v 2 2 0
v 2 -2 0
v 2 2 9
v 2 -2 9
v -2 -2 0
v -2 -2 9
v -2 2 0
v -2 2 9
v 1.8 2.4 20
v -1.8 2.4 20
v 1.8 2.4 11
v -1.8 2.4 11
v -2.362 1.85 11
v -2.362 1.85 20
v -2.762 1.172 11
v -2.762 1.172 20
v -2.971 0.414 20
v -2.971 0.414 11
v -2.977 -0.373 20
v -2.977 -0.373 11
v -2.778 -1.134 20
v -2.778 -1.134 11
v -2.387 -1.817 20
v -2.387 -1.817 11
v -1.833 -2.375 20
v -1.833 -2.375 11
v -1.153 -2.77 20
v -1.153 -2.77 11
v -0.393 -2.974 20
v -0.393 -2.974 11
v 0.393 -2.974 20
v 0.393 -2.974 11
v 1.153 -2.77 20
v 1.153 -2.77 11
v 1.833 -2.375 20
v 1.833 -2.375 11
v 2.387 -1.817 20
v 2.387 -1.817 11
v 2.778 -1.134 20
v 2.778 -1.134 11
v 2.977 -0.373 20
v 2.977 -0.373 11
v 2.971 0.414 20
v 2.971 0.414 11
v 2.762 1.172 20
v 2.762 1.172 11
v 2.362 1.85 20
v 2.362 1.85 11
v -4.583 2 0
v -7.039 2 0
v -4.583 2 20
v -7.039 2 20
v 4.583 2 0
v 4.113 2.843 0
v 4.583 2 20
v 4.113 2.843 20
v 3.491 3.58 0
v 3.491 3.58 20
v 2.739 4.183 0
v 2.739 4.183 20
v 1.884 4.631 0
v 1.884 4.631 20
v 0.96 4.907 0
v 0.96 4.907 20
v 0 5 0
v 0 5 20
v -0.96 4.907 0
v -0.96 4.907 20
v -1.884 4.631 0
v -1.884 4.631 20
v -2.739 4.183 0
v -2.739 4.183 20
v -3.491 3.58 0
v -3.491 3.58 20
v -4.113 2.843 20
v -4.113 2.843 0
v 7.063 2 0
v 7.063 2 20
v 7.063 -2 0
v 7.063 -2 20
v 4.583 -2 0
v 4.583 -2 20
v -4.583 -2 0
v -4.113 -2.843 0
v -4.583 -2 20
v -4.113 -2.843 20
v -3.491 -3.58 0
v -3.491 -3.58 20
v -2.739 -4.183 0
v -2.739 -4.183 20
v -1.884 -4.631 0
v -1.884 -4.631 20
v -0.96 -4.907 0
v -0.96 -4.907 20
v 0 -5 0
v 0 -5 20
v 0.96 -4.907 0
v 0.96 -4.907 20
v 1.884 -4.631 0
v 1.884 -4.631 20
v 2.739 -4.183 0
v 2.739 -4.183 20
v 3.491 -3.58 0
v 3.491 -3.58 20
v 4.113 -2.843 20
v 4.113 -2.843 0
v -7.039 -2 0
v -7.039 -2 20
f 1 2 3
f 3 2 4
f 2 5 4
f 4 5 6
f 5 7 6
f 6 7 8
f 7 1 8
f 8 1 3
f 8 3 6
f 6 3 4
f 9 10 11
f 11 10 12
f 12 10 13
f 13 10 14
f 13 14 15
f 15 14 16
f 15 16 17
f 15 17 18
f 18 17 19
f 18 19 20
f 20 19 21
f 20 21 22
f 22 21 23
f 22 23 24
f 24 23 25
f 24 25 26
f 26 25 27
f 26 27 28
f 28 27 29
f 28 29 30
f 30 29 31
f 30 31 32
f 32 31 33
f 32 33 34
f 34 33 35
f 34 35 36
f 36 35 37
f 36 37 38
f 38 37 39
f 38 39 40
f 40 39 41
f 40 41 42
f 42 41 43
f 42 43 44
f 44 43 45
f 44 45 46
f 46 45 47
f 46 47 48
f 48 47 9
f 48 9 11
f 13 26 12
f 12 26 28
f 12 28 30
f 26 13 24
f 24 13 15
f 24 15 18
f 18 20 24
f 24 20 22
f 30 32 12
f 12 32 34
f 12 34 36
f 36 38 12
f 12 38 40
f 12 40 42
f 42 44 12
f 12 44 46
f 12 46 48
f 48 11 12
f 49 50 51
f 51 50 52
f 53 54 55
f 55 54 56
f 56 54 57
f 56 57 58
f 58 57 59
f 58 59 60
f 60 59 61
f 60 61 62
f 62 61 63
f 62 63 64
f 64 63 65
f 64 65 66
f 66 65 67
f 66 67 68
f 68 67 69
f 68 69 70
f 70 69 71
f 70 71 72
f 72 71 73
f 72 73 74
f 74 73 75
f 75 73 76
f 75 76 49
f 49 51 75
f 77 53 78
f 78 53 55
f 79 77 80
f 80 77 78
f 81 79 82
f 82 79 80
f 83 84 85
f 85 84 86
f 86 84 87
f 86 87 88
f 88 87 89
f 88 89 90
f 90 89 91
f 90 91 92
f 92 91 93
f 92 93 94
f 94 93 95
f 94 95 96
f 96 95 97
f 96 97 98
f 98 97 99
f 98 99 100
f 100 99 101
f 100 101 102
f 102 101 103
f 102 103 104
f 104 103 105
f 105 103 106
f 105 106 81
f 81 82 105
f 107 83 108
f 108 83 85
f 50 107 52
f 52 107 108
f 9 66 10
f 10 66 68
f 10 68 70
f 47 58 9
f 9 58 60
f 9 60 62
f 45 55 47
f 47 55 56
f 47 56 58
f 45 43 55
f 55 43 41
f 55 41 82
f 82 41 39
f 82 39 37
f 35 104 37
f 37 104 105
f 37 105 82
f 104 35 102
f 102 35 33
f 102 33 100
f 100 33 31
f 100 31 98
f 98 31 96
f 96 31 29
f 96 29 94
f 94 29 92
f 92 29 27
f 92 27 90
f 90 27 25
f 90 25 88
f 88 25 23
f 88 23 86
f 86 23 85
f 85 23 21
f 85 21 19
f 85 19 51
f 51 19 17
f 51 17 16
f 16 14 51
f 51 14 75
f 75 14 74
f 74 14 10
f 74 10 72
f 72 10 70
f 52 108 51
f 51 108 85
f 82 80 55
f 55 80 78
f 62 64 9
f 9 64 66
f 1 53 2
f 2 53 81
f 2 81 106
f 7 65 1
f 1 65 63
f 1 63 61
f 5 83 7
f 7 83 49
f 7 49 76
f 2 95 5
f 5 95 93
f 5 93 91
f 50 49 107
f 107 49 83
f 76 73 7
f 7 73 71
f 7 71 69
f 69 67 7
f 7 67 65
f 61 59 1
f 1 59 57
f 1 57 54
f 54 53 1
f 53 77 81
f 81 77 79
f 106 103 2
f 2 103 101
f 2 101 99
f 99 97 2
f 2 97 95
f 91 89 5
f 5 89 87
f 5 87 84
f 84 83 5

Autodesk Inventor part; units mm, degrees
ref_plane "YZ Plane" through (0, 0, 0) normal (1, 0, 0) x (0, 1, 0)
ref_plane "XZ Plane" through (0, 0, 0) normal (0, 1, 0) x (-1, 0, 0)
ref_plane "XY Plane" through (0, 0, 0) normal (0, 0, 1) x (1, 0, 0)
sketch "Sketch1" plane through (0, 0, 0) normal (0, 0, 1) x (1, 0, 0)
  line L0 (7.0628, 2) -> (7.0628, -2)
  line L1 (-7.0394, -2) -> (-7.0394, 2)
  line L2 (-7.0394, 2) -> (-4.5826, 2)
  line L3 (4.5826, 2) -> (7.0628, 2)
  line L4 (7.0628, -2) -> (4.5826, -2)
  line L5 (-4.5826, -2) -> (-7.0394, -2)
  arc A0 (-4.5826, -2) -> (4.5826, -2) centre (0, 0) ccw
  arc A1 (4.5826, 2) -> (-4.5826, 2) centre (0, 0) ccw
extrude "Extrusion1" add sketch "Sketch1" along normal blind 20
sketch "Sketch2" plane through (0, 0, 20) normal (0, 0, 1) x (1, 0, 0)
  arc A0 (-1.8, 2.4) -> (1.8, 2.4) centre (0, 0) ccw
  line L0 (-1.8, 2.4) -> (1.8, 2.4)
  dimension "d2" = 6
extrude "Extrusion2" cut sketch "Sketch2" against normal blind 9
sketch "Sketch3" plane through (0, 0, 0) normal (0, 0, -1) x (-1, 0, 0)
  line L0 (2, 2) -> (-2, 2)
  line L1 (-2, 2) -> (-2, -2)
  line L2 (-2, -2) -> (2, -2)
  line L3 (2, -2) -> (2, 2)
  line L4 (2, 2) -> (-2, -2) construction
  line L5 (-2, 2) -> (2, -2) construction
  point P0 (0, 0)
  dimension "d5" = 4
  dimension "d6" = 4
extrude "Extrusion3" cut sketch "Sketch3" against normal blind 9
properties part number "DispenserCoupling"
